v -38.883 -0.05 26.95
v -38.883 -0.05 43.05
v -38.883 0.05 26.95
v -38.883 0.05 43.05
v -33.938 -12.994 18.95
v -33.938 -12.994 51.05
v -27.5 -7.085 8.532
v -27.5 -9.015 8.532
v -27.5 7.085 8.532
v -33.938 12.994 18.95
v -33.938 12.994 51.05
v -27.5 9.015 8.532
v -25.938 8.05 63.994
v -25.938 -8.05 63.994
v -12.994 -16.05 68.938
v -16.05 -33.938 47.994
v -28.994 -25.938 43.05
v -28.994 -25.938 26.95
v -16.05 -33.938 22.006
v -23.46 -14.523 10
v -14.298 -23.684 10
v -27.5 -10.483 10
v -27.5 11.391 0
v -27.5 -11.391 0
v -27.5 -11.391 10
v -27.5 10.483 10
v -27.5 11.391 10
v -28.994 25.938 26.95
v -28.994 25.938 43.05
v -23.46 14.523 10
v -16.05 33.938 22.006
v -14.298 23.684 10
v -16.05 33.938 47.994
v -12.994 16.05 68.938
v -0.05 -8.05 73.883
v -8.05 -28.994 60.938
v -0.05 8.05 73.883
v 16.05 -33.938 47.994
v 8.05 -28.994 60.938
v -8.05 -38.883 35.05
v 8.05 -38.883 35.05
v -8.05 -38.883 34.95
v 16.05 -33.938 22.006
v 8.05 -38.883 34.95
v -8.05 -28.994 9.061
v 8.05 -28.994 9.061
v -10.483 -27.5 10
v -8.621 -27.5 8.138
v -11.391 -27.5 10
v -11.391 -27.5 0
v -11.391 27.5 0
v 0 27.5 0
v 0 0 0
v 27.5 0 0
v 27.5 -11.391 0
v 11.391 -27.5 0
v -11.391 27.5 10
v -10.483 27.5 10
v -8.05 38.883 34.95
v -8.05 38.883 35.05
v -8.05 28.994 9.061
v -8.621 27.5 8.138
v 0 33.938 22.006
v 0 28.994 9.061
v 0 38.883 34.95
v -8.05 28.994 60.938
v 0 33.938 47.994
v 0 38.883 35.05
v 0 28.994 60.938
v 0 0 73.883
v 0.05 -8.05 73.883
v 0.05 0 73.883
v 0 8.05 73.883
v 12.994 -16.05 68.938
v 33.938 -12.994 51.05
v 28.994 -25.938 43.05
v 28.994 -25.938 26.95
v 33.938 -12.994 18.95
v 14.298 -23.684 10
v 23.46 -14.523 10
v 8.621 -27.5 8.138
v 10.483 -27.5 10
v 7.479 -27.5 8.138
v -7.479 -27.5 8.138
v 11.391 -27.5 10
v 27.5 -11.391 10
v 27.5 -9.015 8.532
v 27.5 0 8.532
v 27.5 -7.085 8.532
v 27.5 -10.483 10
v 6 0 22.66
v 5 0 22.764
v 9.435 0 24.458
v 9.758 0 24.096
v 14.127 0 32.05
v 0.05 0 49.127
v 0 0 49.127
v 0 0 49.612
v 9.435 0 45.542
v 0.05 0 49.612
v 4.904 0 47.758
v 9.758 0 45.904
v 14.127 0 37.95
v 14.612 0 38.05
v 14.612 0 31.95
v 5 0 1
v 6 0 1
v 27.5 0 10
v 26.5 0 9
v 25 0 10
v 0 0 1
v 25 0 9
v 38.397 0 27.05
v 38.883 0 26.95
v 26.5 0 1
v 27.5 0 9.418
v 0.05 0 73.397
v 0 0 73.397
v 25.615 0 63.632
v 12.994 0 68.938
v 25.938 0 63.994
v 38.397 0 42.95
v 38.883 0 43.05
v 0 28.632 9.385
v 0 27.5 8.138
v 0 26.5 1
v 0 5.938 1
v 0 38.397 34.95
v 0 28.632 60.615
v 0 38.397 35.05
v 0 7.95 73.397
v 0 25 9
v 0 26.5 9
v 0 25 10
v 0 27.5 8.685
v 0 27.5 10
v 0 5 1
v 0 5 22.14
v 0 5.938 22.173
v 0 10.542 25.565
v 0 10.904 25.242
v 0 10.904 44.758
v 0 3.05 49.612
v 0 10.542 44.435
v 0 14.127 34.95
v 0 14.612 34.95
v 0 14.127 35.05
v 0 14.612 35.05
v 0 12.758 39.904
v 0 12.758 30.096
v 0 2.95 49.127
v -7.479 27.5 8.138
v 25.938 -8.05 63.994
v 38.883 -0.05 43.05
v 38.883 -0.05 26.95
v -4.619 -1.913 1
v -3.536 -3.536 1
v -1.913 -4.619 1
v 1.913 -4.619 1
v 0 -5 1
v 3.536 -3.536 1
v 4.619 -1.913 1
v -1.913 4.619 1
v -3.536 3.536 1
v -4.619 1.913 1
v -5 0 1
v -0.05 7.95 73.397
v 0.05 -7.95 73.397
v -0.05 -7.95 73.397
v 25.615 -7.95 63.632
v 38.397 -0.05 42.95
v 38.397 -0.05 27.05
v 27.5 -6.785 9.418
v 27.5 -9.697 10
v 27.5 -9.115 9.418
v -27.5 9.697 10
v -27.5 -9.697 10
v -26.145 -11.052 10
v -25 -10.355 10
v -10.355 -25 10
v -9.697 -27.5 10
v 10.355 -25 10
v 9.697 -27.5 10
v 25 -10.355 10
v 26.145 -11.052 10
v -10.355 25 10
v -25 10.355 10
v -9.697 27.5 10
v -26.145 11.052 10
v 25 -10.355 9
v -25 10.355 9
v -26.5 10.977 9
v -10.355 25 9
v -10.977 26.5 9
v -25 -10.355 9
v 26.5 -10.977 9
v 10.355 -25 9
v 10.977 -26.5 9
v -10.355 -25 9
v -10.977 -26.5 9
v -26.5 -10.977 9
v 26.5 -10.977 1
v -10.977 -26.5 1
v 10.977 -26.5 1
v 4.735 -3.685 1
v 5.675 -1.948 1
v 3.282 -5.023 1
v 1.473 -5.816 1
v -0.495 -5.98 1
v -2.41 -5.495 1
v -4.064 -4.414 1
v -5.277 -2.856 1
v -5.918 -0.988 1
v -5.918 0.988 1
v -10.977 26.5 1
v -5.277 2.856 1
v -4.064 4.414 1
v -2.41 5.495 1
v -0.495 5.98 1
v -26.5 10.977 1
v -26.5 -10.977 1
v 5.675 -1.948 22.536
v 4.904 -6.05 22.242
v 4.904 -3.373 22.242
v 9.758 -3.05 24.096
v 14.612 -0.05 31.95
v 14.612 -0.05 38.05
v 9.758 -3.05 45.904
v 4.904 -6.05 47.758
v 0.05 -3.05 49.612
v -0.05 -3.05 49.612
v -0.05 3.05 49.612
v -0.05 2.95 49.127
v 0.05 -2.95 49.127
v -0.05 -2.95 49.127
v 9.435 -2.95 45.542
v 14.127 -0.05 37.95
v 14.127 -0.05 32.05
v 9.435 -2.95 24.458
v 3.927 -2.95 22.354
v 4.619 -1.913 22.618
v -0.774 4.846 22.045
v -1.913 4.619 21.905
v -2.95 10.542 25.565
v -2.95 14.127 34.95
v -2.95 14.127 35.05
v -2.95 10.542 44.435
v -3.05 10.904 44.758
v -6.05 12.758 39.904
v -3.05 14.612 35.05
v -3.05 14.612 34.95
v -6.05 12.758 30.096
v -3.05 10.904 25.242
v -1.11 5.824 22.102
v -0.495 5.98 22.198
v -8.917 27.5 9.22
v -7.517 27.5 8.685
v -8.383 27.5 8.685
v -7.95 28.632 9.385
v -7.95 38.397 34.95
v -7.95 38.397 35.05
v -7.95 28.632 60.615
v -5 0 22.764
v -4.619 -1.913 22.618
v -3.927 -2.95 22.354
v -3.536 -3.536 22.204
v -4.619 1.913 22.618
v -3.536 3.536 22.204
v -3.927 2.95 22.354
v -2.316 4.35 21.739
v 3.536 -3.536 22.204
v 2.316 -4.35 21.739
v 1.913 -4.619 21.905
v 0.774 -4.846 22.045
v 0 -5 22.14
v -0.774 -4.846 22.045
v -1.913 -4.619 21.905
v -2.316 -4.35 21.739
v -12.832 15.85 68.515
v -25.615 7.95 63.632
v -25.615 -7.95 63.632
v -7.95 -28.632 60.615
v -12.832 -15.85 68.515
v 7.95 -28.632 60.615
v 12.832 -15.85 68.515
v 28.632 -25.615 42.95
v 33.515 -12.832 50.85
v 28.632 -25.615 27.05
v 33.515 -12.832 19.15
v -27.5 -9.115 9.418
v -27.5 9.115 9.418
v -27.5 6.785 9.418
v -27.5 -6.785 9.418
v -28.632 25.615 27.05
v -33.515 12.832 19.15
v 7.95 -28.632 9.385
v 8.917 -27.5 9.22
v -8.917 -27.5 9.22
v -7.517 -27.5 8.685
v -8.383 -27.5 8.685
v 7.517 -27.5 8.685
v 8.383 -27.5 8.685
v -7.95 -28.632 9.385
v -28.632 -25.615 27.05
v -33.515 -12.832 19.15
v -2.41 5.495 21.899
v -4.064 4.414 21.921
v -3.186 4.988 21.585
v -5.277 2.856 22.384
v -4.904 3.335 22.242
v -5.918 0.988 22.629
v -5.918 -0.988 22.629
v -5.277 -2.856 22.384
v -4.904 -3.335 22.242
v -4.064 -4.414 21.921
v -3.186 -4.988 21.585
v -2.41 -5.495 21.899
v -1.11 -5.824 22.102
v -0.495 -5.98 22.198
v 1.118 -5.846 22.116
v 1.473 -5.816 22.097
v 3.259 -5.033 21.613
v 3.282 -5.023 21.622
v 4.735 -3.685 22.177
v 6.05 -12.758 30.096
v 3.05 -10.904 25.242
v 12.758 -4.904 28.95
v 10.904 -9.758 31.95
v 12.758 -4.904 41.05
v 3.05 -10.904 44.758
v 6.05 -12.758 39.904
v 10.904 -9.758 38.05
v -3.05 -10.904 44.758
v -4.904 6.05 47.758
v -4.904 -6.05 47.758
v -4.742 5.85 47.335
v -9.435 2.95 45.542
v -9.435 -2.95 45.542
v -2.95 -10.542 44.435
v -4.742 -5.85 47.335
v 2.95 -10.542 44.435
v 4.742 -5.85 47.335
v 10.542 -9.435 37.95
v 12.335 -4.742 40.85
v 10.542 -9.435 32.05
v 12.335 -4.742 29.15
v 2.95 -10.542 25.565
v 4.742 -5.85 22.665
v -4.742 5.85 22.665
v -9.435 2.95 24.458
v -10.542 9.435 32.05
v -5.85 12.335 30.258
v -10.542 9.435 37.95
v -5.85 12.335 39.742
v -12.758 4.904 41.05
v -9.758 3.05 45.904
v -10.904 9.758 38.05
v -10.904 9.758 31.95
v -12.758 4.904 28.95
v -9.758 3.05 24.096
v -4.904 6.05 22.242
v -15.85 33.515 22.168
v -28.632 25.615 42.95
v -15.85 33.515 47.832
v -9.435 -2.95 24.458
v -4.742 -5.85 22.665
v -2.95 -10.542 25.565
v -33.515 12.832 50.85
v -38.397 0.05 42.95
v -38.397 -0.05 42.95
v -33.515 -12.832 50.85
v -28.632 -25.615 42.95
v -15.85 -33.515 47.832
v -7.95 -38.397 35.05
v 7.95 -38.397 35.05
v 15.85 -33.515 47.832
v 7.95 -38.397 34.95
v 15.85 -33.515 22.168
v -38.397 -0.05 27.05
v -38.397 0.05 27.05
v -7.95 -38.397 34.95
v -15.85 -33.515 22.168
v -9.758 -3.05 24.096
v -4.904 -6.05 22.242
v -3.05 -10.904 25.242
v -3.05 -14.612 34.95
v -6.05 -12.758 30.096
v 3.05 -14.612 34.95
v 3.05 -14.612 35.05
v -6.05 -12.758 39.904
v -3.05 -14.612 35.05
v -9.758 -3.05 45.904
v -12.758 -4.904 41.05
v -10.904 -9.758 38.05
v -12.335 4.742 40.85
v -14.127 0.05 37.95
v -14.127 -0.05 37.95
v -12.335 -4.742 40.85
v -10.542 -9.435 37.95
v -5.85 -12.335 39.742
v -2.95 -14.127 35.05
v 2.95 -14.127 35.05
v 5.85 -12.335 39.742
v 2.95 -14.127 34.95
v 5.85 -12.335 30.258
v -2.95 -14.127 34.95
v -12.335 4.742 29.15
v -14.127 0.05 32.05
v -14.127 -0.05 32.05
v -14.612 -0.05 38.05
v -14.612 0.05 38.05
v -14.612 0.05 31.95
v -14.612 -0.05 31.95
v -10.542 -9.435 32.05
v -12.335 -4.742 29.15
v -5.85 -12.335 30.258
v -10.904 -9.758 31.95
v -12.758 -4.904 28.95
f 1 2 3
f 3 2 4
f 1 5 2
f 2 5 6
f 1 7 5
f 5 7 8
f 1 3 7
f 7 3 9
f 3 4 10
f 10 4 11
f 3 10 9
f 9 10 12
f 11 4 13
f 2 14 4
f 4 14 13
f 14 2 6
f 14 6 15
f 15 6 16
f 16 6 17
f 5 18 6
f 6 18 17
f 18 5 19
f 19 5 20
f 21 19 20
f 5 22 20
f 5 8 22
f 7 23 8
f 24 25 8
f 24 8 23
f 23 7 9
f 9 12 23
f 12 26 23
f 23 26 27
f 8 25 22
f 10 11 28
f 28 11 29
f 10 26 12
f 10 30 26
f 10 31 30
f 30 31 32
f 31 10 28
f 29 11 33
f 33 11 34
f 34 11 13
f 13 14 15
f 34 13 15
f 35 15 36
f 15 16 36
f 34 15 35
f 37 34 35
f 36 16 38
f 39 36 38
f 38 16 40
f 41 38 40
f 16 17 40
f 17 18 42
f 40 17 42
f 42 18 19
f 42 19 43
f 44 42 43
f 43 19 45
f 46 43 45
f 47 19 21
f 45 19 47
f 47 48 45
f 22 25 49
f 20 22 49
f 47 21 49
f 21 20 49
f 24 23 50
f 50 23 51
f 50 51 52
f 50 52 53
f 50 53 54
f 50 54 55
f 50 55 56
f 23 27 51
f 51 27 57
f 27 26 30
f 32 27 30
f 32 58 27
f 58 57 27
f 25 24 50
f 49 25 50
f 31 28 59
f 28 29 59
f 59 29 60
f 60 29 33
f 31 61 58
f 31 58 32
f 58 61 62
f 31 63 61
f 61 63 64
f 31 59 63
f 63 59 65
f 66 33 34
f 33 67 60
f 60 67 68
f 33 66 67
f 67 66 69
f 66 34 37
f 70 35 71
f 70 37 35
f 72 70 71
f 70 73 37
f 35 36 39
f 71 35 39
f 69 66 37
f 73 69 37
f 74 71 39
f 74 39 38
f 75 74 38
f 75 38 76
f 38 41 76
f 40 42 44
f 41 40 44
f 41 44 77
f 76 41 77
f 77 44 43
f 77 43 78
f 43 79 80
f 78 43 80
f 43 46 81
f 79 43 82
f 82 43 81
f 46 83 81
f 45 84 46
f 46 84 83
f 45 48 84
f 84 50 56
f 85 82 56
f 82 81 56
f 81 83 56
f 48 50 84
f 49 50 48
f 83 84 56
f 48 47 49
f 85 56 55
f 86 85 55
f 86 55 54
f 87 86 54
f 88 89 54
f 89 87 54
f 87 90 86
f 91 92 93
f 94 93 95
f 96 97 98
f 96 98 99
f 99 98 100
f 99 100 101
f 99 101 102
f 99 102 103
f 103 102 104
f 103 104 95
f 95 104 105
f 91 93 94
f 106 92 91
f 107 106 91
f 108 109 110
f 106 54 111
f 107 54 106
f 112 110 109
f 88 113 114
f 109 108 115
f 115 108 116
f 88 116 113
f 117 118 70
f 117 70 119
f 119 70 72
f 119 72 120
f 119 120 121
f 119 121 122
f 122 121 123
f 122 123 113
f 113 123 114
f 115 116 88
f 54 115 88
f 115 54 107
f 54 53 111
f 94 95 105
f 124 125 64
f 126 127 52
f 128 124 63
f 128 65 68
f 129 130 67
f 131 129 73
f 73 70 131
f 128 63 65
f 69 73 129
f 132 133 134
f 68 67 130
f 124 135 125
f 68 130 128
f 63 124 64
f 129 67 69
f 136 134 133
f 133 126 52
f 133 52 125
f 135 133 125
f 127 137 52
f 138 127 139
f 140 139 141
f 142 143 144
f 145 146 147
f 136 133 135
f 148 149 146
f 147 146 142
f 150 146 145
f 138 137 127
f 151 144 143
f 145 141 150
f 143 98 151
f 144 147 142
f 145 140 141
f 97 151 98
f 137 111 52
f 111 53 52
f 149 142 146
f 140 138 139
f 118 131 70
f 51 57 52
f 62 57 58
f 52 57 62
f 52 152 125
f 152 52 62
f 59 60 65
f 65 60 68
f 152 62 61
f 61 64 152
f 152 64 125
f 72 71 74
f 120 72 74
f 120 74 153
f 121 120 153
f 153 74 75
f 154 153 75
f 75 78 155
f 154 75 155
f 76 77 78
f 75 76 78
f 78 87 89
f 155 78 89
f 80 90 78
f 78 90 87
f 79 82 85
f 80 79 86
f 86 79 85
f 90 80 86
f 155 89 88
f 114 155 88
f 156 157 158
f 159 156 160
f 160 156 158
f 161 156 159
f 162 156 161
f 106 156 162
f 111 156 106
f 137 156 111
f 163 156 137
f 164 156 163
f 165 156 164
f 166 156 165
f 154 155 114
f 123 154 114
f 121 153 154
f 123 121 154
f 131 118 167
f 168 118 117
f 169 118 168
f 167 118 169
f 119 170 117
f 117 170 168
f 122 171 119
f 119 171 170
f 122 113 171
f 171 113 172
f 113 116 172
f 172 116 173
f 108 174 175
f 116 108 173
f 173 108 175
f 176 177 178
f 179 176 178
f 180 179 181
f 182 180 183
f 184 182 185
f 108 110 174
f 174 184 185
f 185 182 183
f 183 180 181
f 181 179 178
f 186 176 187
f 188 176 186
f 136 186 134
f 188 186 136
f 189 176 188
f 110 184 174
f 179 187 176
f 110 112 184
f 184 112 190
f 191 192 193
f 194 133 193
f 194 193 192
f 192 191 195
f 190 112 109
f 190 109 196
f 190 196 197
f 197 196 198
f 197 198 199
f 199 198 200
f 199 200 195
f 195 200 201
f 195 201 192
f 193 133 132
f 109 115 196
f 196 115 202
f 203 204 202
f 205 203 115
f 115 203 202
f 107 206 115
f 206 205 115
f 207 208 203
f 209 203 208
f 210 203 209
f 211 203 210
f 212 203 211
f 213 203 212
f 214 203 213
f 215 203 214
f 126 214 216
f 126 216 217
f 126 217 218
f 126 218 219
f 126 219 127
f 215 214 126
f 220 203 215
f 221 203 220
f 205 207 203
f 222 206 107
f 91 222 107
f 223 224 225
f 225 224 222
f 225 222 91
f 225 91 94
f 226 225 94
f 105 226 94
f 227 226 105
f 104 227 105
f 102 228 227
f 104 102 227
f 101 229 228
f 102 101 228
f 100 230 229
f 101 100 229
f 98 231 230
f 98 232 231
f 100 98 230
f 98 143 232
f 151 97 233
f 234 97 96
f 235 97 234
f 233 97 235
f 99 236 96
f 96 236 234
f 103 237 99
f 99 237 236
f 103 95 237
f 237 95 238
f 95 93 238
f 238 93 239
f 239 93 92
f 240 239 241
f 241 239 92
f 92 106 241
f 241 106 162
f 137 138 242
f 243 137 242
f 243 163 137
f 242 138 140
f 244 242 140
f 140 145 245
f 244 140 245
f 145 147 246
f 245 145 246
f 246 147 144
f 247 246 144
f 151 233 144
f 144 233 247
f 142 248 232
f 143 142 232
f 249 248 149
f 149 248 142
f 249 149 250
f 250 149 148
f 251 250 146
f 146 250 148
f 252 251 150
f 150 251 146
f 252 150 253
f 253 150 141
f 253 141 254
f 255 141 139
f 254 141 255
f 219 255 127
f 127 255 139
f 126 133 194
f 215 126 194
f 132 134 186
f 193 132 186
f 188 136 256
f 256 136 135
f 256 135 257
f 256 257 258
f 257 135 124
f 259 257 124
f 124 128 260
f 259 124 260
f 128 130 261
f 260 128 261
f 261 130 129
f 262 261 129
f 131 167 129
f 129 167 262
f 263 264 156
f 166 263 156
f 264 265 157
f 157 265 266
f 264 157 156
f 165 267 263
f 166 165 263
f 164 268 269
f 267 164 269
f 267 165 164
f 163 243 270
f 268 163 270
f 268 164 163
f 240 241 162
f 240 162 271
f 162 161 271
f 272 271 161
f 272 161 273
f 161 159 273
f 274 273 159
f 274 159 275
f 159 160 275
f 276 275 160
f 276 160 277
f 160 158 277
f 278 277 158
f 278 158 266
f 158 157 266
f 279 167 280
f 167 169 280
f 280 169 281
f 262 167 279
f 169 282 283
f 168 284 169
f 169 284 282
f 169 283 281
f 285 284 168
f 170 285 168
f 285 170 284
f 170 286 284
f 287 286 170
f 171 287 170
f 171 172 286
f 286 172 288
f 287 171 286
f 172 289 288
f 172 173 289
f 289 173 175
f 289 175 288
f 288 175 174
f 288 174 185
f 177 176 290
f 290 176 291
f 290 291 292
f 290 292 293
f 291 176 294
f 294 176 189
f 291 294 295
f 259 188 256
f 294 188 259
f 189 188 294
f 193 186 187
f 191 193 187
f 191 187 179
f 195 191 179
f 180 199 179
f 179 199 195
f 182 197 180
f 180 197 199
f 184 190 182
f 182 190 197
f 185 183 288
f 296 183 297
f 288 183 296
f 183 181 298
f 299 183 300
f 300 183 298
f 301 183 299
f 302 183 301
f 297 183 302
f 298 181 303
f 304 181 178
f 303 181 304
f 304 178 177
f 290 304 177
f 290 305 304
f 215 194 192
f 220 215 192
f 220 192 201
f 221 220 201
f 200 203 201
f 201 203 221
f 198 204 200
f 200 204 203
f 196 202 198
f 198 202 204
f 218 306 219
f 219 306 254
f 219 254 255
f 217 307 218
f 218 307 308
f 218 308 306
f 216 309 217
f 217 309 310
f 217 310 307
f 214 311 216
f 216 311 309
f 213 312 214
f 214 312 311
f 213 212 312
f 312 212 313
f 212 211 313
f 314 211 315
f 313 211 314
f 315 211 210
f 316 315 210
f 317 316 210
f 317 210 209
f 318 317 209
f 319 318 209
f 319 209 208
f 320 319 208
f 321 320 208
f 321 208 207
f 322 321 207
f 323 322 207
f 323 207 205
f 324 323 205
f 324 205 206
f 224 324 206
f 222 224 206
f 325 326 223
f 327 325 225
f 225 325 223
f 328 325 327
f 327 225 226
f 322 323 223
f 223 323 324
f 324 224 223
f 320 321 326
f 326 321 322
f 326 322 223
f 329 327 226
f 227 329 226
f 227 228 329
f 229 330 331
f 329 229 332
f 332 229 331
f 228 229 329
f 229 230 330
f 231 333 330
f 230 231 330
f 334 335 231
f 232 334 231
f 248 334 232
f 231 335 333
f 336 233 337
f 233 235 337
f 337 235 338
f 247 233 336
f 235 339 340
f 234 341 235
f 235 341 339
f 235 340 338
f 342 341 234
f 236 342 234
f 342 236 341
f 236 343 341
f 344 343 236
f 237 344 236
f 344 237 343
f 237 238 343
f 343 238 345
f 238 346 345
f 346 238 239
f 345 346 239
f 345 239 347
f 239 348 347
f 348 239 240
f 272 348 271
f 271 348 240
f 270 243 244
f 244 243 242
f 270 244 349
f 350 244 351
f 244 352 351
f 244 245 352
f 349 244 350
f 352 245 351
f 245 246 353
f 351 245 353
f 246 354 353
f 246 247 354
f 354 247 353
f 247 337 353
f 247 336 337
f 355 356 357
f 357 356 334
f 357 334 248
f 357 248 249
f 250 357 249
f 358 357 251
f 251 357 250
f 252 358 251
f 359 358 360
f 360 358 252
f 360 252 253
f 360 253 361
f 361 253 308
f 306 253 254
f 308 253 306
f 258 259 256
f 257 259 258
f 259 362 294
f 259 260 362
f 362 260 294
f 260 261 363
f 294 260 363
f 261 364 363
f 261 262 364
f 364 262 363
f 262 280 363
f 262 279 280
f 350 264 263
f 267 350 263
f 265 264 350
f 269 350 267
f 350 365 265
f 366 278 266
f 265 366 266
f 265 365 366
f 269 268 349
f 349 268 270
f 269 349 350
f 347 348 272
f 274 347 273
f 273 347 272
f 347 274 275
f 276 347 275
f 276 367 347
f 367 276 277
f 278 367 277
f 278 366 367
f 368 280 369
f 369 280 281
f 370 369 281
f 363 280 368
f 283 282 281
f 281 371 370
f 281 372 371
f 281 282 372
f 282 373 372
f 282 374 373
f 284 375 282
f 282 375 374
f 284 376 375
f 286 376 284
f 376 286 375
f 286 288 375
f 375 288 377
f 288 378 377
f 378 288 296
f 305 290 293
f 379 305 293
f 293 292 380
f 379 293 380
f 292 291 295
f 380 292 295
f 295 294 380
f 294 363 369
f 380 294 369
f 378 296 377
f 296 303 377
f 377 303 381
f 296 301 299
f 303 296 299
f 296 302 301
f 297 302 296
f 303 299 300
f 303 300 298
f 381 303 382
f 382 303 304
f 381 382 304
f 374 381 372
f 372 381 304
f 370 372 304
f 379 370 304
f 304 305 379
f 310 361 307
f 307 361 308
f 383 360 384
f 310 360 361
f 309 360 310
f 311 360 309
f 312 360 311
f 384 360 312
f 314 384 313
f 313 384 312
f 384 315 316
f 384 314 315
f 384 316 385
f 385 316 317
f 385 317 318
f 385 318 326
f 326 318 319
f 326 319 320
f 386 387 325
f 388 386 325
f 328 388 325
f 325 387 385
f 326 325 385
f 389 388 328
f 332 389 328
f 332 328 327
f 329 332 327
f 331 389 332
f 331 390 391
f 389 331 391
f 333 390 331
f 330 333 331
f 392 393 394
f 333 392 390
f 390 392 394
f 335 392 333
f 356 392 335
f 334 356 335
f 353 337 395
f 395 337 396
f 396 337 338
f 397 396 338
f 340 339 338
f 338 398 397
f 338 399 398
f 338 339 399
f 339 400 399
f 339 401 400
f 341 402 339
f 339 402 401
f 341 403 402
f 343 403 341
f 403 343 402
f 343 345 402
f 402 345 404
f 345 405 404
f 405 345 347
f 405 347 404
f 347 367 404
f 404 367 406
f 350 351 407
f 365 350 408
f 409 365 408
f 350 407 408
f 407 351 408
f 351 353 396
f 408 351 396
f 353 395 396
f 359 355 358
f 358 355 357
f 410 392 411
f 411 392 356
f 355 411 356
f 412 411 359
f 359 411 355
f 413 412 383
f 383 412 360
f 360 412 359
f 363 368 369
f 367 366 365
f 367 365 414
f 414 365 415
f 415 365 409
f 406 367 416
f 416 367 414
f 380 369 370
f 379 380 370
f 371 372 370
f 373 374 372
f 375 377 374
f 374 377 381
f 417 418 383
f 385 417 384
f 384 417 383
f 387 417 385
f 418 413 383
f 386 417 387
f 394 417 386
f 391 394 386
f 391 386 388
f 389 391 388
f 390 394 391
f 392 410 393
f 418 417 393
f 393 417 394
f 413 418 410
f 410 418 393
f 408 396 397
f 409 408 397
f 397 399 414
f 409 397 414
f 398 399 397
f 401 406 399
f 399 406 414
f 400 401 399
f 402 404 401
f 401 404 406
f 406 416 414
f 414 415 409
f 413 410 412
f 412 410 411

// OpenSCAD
phi = (1+sqrt(5))/2; 

coords = [ 
        [0,+1,+3*phi], [0,+1,-3*phi], [0,-1,+3*phi], [0,-1,-3*phi], 
        [+1,+3*phi,0], [+1,-3*phi,0], [-1,+3*phi,0], [-1,-3*phi,0], 
        [+3*phi,0,+1], [+3*phi,0,-1], [-3*phi,0,+1], [-3*phi,0,-1], 

        [+2,+(1+2*phi),+phi], [+2,+(1+2*phi),-phi], [+2,-(1+2*phi),+phi], [+2,-(1+2*phi),-phi], 
        [-2,+(1+2*phi),+phi], [-2,+(1+2*phi),-phi], [-2,-(1+2*phi),+phi], [-2,-(1+2*phi),-phi], 

        [+(1+2*phi),+phi,+2], [+(1+2*phi),+phi,-2], [+(1+2*phi),-phi,+2], [+(1+2*phi),-phi,-2], 
        [-(1+2*phi),+phi,+2], [-(1+2*phi),+phi,-2], [-(1+2*phi),-phi,+2], [-(1+2*phi),-phi,-2], 

        [+phi,+2,+(1+2*phi)], [+phi,+2,-(1+2*phi)], [+phi,-2,+(1+2*phi)], [+phi,-2,-(1+2*phi)], 
        [-phi,+2,+(1+2*phi)], [-phi,+2,-(1+2*phi)], [-phi,-2,+(1+2*phi)], [-phi,-2,-(1+2*phi)], 

        [+1,+(2+phi),+2*phi], [+1,+(2+phi),-2*phi], [+1,-(2+phi),+2*phi], [+1,-(2+phi),-2*phi], 
        [-1,+(2+phi),+2*phi], [-1,+(2+phi),-2*phi], [-1,-(2+phi),+2*phi], [-1,-(2+phi),-2*phi], 

        [+(2+phi),+2*phi,+1], [+(2+phi),+2*phi,-1], [+(2+phi),-2*phi,+1], [+(2+phi),-2*phi,-1], 
        [-(2+phi),+2*phi,+1], [-(2+phi),+2*phi,-1], [-(2+phi),-2*phi,+1], [-(2+phi),-2*phi,-1], 

        [+2*phi,+1,+(2+phi)], [+2*phi,+1,-(2+phi)], [+2*phi,-1,+(2+phi)], [+2*phi,-1,-(2+phi)], 
        [-2*phi,+1,+(2+phi)], [-2*phi,+1,-(2+phi)], [-2*phi,-1,+(2+phi)], [-2*phi,-1,-(2+phi)], 
]; 


// size is the XY plane size, height in Z
module hexagon(size, height) {
  boxWidth = size/1.75;
  for (r = [-60, 0, 60]) rotate([0,0,r]) cube([boxWidth, size, height], true);
}
module octagon(size, height) {
  intersection() {
    cube([size, size, height], true);
    rotate([0,0,45]) cube([size, size, height], true);
  }
}


module soccerBall(size) {
	hull() { 
        for (a = [0 : len(coords) - 1]) { 
                echo(coords[a]); 
                translate(size * coords[a]) cube([0.1, 0.1, 0.1], center = true); 
        } 
	} 
}
module outerHull(outer,inner) {
	difference() {
  	 	difference() {soccerBall(outer); soccerBall(inner);}

		translate([0,0,-35]) octagon(55,20);
	}
}

module lowerHull() {
	difference() {
		difference() {
			translate([0,0,-30]) octagon(55,10);
			translate([0,0,-30]) octagon(53,8);
		}
		translate([0,0,-28]) octagon(50,10);
	}
}

module innerBody() {
 union() {
		difference() {
			difference() {soccerBall(3); soccerBall(2.9);}
			translate([0,0,-35]) {cylinder(h = 25, r1 = 5, r2 = 5);}
		}
		difference() {
			translate([0,0,-35]) {
				difference() {
					cylinder(h = 25, r1 = 6, r2 = 6); 
					cylinder(h = 25, r1 = 5, r2 = 5);
				} 
			}
			soccerBall(2.9);
		}
		lowerHull();
   }
}

//translate([0,0,35]) outerHull(8,7.90);
//translate([0,0,35]) innerBody();


translate([0,0,35])difference() {
	outerHull(8,7.9);
	translate([25,25,0]) cube(size = [50,50,100], center = true);
}


translate([0,0,35])difference() {
	innerBody();
	translate([25,25,0]) cube(size = [50,50,100], center = true);
}







/*
	translate([0,0,20]) cube(size = [5,5,20], center = true);
}
*/
